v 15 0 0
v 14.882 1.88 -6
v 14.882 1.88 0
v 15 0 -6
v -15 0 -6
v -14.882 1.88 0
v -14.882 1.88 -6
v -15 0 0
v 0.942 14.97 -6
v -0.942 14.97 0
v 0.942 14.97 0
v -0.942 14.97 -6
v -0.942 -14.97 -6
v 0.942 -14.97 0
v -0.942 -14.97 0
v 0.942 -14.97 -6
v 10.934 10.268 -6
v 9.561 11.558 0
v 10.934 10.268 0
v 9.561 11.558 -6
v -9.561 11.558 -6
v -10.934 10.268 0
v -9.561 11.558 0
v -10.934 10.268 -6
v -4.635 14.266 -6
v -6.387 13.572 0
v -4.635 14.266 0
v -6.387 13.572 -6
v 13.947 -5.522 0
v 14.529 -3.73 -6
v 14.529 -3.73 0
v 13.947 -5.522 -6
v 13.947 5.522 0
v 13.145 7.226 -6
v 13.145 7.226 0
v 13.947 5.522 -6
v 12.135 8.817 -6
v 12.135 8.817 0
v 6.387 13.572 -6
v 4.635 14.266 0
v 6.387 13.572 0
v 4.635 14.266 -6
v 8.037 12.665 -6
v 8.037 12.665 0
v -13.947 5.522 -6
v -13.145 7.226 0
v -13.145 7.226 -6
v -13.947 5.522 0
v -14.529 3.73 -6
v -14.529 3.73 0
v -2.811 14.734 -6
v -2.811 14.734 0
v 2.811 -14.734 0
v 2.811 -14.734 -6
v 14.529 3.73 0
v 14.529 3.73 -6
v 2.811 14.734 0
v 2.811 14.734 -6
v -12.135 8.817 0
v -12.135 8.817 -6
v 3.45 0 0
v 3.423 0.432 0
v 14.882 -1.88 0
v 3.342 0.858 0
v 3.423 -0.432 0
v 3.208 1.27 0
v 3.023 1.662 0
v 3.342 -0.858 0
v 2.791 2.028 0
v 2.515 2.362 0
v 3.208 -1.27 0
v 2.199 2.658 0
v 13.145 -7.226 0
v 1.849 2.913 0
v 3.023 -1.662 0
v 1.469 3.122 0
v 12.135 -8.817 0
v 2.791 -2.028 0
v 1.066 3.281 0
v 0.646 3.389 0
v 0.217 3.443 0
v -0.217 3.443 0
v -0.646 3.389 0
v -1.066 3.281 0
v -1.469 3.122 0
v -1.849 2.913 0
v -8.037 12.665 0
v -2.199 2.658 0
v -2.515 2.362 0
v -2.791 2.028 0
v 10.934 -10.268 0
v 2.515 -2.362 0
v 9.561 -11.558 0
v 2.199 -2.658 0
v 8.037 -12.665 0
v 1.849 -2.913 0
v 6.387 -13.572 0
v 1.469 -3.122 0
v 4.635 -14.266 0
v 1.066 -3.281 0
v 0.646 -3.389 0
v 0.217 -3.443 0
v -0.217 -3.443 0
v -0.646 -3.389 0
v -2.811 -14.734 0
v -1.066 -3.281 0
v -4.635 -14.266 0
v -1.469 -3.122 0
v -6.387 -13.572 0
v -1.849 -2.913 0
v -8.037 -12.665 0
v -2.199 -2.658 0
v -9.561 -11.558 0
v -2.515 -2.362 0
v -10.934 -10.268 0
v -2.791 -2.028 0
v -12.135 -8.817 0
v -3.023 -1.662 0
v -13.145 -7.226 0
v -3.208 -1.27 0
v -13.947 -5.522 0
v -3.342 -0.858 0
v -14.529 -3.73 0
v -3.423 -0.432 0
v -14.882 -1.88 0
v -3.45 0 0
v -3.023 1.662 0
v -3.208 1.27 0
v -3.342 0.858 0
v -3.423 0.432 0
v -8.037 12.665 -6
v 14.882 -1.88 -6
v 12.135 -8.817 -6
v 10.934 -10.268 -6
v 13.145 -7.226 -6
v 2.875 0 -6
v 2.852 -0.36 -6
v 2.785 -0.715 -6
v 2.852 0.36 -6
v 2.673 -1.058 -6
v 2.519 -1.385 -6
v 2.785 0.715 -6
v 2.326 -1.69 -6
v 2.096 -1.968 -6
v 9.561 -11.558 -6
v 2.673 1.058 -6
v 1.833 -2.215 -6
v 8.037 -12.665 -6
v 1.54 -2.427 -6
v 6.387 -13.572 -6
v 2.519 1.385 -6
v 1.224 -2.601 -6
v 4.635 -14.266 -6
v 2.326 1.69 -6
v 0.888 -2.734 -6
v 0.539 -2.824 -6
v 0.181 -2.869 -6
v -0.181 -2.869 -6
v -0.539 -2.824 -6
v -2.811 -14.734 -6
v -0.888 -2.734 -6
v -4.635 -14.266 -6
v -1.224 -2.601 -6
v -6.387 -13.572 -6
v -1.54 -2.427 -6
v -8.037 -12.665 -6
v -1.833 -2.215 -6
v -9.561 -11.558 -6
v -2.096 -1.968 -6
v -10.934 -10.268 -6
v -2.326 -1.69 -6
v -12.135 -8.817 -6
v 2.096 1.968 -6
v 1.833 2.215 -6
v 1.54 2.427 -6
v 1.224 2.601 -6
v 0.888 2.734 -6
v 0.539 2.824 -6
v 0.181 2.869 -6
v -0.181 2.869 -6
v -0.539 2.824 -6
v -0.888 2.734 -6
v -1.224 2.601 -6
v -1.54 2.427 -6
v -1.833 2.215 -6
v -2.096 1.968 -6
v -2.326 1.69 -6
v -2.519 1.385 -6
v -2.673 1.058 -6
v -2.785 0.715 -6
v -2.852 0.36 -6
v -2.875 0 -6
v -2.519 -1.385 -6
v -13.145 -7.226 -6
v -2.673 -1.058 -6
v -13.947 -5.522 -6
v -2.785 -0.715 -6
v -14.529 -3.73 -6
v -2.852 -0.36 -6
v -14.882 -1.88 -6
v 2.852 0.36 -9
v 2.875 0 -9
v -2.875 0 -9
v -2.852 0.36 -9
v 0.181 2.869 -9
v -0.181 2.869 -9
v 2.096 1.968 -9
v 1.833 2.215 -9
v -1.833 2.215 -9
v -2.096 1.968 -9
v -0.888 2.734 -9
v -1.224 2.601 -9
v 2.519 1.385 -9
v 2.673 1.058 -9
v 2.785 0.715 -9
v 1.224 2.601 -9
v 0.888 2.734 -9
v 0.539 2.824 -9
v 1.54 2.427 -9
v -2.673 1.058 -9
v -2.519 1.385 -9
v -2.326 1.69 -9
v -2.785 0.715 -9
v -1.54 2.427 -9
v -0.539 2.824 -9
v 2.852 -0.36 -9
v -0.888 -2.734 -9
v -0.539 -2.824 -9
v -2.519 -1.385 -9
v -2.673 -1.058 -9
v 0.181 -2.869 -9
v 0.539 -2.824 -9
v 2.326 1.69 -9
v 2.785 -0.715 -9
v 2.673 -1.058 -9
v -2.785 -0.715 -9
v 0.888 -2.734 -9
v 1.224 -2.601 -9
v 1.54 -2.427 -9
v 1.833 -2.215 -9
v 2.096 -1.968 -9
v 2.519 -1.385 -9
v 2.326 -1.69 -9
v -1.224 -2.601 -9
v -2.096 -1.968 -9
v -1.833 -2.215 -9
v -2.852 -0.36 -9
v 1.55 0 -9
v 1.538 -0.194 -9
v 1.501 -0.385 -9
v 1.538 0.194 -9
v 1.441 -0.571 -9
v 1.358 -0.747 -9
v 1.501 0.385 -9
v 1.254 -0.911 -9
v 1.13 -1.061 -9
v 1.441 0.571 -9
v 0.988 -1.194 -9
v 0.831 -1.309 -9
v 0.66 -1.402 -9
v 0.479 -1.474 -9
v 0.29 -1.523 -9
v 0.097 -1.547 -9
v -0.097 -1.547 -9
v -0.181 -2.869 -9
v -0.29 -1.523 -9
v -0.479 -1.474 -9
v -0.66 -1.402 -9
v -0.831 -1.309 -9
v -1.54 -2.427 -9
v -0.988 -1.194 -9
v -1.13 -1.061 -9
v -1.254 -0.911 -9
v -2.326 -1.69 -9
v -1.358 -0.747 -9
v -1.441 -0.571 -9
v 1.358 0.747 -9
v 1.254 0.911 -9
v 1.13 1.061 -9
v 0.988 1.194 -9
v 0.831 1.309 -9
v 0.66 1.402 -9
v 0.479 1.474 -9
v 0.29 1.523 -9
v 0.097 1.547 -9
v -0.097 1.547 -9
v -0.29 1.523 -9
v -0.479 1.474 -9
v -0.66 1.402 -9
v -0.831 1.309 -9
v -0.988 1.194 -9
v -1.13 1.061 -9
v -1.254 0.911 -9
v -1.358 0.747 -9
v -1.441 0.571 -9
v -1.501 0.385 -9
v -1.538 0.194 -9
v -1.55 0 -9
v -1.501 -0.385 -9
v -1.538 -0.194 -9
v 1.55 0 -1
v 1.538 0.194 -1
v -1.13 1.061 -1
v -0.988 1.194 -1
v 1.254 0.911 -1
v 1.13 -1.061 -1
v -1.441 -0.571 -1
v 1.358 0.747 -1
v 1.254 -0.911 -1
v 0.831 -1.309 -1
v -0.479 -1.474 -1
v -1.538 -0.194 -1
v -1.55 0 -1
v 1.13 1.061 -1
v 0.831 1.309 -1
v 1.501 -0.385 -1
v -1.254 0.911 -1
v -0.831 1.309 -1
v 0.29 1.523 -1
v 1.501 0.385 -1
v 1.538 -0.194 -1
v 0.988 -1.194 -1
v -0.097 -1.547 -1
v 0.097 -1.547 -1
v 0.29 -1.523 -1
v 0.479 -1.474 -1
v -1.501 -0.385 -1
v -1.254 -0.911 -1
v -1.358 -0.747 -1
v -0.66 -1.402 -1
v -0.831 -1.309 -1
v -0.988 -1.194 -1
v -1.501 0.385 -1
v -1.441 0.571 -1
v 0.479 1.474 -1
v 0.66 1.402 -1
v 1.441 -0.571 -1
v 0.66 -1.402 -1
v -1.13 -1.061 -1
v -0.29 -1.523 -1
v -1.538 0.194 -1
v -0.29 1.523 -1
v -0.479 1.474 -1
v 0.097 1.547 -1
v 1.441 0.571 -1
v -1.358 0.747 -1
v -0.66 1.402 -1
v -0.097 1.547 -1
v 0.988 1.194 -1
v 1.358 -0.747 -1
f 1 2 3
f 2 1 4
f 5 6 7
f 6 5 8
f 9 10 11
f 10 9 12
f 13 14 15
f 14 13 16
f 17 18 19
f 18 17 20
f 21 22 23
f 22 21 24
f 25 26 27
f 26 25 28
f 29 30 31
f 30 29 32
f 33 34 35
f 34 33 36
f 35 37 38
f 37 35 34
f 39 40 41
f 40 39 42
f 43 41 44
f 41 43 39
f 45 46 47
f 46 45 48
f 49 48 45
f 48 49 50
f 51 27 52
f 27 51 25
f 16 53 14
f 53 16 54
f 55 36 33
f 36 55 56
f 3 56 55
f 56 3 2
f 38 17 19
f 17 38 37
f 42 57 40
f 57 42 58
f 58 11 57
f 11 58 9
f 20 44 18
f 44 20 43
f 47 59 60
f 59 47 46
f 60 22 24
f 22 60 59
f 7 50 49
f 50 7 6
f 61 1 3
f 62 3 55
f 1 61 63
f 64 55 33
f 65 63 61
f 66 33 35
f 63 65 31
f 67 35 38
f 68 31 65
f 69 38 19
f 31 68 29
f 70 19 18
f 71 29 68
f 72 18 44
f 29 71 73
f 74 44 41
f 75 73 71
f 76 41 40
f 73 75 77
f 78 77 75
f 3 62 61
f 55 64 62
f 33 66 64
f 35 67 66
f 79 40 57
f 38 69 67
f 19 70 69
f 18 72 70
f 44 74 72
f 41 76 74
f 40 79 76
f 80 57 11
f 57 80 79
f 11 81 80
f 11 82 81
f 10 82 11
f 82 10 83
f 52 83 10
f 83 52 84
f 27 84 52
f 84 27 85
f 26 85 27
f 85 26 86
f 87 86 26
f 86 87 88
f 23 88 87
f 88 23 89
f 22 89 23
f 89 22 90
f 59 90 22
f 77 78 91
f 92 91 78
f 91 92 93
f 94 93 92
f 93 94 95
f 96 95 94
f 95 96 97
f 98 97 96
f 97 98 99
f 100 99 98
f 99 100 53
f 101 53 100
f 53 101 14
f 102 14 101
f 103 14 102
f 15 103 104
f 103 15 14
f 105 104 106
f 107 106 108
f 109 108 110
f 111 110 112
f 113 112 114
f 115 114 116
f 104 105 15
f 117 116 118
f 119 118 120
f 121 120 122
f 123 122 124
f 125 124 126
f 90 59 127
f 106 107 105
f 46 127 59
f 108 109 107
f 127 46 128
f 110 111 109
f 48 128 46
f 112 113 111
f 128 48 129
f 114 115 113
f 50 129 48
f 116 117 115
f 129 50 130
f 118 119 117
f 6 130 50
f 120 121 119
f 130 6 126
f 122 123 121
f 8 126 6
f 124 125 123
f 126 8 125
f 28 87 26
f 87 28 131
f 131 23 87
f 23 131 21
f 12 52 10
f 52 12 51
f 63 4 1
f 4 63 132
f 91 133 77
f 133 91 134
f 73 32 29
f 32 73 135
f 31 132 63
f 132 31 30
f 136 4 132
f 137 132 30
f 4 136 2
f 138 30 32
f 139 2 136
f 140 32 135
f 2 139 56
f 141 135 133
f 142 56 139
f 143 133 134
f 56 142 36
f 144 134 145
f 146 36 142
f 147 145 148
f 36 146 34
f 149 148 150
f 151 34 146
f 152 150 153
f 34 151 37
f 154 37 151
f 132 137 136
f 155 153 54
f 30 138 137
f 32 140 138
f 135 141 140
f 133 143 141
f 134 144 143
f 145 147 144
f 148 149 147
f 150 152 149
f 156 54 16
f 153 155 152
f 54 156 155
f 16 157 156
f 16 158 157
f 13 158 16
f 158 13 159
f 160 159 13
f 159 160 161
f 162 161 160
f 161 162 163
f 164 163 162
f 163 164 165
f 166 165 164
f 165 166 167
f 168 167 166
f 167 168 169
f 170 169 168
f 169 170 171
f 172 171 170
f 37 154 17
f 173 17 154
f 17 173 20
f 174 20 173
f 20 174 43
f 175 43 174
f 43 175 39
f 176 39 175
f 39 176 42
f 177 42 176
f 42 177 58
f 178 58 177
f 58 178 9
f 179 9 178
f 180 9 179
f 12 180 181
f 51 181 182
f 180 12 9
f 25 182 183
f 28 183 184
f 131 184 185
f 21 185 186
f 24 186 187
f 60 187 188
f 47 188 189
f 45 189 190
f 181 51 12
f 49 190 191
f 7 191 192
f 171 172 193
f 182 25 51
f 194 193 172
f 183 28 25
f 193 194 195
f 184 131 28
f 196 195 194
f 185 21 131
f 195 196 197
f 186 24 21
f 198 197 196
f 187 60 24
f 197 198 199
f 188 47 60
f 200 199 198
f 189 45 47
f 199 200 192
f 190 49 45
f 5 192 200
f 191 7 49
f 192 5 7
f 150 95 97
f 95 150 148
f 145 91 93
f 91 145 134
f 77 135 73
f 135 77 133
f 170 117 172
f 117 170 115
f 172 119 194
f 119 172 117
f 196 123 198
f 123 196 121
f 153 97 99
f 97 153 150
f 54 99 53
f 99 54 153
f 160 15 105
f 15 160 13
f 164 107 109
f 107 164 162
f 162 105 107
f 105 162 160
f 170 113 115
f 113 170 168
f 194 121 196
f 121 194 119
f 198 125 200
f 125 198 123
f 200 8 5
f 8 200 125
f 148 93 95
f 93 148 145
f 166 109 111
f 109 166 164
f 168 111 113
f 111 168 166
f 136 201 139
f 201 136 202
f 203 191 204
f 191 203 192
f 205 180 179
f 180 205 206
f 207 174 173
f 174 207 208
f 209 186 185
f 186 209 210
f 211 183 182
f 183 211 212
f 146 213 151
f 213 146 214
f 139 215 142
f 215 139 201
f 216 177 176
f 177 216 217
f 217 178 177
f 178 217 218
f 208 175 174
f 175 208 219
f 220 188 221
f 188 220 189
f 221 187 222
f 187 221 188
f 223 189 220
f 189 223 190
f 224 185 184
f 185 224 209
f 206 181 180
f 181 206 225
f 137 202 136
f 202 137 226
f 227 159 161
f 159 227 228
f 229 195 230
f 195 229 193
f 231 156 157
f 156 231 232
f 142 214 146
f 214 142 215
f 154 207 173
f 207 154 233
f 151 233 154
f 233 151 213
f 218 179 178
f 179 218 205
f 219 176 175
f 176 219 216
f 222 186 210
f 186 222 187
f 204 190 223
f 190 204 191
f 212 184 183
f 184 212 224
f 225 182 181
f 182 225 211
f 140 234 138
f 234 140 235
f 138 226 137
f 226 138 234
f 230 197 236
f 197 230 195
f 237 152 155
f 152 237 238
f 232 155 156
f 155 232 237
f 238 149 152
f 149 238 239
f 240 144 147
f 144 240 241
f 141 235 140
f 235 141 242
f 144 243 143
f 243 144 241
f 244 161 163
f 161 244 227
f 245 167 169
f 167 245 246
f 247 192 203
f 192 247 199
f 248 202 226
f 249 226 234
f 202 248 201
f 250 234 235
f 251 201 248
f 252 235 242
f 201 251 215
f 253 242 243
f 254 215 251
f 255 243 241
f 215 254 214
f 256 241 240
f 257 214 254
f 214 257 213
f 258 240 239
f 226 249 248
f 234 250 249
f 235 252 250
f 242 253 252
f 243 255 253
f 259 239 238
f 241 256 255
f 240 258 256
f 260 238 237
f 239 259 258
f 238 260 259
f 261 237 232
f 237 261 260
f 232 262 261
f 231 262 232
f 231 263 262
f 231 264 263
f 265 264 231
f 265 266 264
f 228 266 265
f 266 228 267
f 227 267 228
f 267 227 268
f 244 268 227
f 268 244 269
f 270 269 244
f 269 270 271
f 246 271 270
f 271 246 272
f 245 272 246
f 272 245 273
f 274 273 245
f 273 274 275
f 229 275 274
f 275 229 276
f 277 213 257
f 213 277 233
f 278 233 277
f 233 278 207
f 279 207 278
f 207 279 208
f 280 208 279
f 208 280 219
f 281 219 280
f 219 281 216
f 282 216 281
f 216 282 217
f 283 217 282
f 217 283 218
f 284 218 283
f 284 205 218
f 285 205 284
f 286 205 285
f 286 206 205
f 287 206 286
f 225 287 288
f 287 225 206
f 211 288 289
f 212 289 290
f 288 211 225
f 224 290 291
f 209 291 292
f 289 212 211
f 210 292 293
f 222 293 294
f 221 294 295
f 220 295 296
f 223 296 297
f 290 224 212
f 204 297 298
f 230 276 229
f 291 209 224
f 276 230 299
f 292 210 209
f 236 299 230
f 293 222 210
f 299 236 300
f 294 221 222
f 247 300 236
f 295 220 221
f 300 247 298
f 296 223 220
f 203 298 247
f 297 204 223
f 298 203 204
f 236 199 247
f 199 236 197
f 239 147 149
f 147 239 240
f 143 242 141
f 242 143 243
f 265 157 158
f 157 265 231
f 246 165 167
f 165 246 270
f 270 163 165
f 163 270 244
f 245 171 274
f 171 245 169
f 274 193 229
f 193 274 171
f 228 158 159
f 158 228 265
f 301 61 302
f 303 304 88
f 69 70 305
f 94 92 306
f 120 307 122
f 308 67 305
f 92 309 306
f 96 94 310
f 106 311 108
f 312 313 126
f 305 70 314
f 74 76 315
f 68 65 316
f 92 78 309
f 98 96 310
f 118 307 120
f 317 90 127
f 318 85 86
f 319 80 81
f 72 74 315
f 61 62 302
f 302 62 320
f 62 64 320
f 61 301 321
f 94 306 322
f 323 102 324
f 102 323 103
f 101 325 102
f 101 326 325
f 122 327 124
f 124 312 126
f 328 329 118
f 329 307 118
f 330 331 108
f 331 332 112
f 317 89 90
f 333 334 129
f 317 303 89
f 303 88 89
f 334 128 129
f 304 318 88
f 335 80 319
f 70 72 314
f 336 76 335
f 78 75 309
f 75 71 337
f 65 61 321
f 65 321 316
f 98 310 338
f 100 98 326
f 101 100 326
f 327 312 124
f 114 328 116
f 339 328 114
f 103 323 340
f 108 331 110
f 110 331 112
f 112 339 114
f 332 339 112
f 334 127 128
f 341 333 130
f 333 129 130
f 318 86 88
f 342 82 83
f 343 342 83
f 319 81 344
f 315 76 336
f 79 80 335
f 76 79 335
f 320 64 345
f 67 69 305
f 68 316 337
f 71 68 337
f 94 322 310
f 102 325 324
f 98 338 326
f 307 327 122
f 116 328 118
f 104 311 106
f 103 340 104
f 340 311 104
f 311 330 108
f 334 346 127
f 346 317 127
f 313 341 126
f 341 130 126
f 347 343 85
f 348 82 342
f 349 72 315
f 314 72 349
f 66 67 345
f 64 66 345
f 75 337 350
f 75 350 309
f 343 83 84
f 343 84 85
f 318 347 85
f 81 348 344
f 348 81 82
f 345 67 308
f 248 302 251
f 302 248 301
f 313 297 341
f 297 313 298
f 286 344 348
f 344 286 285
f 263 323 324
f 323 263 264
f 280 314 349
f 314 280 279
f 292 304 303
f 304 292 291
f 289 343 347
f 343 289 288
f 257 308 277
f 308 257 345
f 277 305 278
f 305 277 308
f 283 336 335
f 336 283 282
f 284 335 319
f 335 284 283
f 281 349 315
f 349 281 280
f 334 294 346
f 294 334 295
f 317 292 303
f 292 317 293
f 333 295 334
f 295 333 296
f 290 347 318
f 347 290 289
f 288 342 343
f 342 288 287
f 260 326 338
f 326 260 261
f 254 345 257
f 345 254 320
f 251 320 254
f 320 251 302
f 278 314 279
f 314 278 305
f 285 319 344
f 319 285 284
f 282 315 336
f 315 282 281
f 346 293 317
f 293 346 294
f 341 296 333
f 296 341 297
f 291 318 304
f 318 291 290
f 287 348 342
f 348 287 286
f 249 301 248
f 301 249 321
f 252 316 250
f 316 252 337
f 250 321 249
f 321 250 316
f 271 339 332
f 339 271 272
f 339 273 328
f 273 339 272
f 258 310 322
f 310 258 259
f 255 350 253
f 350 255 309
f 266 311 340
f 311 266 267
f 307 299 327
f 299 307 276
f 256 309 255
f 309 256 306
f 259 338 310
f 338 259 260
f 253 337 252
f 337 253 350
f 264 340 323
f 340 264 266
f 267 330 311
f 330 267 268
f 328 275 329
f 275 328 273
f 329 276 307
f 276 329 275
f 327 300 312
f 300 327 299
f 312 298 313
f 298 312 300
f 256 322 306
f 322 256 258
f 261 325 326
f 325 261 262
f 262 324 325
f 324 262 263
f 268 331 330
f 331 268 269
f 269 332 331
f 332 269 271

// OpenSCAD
$fn = 50;


difference() {
	union() {
		translate(v = [0, 0, -6.0000000000]) {
			cylinder(h = 6, r = 15.0000000000);
		}
		#translate(v = [0, 0, -9.0000000000]) {
			cylinder(h = 9, r = 2.8750000000);
		}
	}
	union() {
		translate(v = [0, 0, 0]) {
			rotate(a = [0, 0, 0]) {
				difference() {
					union() {
						translate(v = [0, 0, -9.0000000000]) {
							cylinder(h = 9, r = 1.2500000000);
						}
						translate(v = [0, 0, -1.0000000000]) {
							cylinder(h = 1.0000000000, r1 = 1.5500000000, r2 = 3.4500000000);
						}
						translate(v = [0, 0, -9.0000000000]) {
							cylinder(h = 9, r = 1.5500000000);
						}
						translate(v = [0, 0, -9.0000000000]) {
							cylinder(h = 9, r = 1.2500000000);
						}
					}
					union();
				}
			}
		}
	}
}
